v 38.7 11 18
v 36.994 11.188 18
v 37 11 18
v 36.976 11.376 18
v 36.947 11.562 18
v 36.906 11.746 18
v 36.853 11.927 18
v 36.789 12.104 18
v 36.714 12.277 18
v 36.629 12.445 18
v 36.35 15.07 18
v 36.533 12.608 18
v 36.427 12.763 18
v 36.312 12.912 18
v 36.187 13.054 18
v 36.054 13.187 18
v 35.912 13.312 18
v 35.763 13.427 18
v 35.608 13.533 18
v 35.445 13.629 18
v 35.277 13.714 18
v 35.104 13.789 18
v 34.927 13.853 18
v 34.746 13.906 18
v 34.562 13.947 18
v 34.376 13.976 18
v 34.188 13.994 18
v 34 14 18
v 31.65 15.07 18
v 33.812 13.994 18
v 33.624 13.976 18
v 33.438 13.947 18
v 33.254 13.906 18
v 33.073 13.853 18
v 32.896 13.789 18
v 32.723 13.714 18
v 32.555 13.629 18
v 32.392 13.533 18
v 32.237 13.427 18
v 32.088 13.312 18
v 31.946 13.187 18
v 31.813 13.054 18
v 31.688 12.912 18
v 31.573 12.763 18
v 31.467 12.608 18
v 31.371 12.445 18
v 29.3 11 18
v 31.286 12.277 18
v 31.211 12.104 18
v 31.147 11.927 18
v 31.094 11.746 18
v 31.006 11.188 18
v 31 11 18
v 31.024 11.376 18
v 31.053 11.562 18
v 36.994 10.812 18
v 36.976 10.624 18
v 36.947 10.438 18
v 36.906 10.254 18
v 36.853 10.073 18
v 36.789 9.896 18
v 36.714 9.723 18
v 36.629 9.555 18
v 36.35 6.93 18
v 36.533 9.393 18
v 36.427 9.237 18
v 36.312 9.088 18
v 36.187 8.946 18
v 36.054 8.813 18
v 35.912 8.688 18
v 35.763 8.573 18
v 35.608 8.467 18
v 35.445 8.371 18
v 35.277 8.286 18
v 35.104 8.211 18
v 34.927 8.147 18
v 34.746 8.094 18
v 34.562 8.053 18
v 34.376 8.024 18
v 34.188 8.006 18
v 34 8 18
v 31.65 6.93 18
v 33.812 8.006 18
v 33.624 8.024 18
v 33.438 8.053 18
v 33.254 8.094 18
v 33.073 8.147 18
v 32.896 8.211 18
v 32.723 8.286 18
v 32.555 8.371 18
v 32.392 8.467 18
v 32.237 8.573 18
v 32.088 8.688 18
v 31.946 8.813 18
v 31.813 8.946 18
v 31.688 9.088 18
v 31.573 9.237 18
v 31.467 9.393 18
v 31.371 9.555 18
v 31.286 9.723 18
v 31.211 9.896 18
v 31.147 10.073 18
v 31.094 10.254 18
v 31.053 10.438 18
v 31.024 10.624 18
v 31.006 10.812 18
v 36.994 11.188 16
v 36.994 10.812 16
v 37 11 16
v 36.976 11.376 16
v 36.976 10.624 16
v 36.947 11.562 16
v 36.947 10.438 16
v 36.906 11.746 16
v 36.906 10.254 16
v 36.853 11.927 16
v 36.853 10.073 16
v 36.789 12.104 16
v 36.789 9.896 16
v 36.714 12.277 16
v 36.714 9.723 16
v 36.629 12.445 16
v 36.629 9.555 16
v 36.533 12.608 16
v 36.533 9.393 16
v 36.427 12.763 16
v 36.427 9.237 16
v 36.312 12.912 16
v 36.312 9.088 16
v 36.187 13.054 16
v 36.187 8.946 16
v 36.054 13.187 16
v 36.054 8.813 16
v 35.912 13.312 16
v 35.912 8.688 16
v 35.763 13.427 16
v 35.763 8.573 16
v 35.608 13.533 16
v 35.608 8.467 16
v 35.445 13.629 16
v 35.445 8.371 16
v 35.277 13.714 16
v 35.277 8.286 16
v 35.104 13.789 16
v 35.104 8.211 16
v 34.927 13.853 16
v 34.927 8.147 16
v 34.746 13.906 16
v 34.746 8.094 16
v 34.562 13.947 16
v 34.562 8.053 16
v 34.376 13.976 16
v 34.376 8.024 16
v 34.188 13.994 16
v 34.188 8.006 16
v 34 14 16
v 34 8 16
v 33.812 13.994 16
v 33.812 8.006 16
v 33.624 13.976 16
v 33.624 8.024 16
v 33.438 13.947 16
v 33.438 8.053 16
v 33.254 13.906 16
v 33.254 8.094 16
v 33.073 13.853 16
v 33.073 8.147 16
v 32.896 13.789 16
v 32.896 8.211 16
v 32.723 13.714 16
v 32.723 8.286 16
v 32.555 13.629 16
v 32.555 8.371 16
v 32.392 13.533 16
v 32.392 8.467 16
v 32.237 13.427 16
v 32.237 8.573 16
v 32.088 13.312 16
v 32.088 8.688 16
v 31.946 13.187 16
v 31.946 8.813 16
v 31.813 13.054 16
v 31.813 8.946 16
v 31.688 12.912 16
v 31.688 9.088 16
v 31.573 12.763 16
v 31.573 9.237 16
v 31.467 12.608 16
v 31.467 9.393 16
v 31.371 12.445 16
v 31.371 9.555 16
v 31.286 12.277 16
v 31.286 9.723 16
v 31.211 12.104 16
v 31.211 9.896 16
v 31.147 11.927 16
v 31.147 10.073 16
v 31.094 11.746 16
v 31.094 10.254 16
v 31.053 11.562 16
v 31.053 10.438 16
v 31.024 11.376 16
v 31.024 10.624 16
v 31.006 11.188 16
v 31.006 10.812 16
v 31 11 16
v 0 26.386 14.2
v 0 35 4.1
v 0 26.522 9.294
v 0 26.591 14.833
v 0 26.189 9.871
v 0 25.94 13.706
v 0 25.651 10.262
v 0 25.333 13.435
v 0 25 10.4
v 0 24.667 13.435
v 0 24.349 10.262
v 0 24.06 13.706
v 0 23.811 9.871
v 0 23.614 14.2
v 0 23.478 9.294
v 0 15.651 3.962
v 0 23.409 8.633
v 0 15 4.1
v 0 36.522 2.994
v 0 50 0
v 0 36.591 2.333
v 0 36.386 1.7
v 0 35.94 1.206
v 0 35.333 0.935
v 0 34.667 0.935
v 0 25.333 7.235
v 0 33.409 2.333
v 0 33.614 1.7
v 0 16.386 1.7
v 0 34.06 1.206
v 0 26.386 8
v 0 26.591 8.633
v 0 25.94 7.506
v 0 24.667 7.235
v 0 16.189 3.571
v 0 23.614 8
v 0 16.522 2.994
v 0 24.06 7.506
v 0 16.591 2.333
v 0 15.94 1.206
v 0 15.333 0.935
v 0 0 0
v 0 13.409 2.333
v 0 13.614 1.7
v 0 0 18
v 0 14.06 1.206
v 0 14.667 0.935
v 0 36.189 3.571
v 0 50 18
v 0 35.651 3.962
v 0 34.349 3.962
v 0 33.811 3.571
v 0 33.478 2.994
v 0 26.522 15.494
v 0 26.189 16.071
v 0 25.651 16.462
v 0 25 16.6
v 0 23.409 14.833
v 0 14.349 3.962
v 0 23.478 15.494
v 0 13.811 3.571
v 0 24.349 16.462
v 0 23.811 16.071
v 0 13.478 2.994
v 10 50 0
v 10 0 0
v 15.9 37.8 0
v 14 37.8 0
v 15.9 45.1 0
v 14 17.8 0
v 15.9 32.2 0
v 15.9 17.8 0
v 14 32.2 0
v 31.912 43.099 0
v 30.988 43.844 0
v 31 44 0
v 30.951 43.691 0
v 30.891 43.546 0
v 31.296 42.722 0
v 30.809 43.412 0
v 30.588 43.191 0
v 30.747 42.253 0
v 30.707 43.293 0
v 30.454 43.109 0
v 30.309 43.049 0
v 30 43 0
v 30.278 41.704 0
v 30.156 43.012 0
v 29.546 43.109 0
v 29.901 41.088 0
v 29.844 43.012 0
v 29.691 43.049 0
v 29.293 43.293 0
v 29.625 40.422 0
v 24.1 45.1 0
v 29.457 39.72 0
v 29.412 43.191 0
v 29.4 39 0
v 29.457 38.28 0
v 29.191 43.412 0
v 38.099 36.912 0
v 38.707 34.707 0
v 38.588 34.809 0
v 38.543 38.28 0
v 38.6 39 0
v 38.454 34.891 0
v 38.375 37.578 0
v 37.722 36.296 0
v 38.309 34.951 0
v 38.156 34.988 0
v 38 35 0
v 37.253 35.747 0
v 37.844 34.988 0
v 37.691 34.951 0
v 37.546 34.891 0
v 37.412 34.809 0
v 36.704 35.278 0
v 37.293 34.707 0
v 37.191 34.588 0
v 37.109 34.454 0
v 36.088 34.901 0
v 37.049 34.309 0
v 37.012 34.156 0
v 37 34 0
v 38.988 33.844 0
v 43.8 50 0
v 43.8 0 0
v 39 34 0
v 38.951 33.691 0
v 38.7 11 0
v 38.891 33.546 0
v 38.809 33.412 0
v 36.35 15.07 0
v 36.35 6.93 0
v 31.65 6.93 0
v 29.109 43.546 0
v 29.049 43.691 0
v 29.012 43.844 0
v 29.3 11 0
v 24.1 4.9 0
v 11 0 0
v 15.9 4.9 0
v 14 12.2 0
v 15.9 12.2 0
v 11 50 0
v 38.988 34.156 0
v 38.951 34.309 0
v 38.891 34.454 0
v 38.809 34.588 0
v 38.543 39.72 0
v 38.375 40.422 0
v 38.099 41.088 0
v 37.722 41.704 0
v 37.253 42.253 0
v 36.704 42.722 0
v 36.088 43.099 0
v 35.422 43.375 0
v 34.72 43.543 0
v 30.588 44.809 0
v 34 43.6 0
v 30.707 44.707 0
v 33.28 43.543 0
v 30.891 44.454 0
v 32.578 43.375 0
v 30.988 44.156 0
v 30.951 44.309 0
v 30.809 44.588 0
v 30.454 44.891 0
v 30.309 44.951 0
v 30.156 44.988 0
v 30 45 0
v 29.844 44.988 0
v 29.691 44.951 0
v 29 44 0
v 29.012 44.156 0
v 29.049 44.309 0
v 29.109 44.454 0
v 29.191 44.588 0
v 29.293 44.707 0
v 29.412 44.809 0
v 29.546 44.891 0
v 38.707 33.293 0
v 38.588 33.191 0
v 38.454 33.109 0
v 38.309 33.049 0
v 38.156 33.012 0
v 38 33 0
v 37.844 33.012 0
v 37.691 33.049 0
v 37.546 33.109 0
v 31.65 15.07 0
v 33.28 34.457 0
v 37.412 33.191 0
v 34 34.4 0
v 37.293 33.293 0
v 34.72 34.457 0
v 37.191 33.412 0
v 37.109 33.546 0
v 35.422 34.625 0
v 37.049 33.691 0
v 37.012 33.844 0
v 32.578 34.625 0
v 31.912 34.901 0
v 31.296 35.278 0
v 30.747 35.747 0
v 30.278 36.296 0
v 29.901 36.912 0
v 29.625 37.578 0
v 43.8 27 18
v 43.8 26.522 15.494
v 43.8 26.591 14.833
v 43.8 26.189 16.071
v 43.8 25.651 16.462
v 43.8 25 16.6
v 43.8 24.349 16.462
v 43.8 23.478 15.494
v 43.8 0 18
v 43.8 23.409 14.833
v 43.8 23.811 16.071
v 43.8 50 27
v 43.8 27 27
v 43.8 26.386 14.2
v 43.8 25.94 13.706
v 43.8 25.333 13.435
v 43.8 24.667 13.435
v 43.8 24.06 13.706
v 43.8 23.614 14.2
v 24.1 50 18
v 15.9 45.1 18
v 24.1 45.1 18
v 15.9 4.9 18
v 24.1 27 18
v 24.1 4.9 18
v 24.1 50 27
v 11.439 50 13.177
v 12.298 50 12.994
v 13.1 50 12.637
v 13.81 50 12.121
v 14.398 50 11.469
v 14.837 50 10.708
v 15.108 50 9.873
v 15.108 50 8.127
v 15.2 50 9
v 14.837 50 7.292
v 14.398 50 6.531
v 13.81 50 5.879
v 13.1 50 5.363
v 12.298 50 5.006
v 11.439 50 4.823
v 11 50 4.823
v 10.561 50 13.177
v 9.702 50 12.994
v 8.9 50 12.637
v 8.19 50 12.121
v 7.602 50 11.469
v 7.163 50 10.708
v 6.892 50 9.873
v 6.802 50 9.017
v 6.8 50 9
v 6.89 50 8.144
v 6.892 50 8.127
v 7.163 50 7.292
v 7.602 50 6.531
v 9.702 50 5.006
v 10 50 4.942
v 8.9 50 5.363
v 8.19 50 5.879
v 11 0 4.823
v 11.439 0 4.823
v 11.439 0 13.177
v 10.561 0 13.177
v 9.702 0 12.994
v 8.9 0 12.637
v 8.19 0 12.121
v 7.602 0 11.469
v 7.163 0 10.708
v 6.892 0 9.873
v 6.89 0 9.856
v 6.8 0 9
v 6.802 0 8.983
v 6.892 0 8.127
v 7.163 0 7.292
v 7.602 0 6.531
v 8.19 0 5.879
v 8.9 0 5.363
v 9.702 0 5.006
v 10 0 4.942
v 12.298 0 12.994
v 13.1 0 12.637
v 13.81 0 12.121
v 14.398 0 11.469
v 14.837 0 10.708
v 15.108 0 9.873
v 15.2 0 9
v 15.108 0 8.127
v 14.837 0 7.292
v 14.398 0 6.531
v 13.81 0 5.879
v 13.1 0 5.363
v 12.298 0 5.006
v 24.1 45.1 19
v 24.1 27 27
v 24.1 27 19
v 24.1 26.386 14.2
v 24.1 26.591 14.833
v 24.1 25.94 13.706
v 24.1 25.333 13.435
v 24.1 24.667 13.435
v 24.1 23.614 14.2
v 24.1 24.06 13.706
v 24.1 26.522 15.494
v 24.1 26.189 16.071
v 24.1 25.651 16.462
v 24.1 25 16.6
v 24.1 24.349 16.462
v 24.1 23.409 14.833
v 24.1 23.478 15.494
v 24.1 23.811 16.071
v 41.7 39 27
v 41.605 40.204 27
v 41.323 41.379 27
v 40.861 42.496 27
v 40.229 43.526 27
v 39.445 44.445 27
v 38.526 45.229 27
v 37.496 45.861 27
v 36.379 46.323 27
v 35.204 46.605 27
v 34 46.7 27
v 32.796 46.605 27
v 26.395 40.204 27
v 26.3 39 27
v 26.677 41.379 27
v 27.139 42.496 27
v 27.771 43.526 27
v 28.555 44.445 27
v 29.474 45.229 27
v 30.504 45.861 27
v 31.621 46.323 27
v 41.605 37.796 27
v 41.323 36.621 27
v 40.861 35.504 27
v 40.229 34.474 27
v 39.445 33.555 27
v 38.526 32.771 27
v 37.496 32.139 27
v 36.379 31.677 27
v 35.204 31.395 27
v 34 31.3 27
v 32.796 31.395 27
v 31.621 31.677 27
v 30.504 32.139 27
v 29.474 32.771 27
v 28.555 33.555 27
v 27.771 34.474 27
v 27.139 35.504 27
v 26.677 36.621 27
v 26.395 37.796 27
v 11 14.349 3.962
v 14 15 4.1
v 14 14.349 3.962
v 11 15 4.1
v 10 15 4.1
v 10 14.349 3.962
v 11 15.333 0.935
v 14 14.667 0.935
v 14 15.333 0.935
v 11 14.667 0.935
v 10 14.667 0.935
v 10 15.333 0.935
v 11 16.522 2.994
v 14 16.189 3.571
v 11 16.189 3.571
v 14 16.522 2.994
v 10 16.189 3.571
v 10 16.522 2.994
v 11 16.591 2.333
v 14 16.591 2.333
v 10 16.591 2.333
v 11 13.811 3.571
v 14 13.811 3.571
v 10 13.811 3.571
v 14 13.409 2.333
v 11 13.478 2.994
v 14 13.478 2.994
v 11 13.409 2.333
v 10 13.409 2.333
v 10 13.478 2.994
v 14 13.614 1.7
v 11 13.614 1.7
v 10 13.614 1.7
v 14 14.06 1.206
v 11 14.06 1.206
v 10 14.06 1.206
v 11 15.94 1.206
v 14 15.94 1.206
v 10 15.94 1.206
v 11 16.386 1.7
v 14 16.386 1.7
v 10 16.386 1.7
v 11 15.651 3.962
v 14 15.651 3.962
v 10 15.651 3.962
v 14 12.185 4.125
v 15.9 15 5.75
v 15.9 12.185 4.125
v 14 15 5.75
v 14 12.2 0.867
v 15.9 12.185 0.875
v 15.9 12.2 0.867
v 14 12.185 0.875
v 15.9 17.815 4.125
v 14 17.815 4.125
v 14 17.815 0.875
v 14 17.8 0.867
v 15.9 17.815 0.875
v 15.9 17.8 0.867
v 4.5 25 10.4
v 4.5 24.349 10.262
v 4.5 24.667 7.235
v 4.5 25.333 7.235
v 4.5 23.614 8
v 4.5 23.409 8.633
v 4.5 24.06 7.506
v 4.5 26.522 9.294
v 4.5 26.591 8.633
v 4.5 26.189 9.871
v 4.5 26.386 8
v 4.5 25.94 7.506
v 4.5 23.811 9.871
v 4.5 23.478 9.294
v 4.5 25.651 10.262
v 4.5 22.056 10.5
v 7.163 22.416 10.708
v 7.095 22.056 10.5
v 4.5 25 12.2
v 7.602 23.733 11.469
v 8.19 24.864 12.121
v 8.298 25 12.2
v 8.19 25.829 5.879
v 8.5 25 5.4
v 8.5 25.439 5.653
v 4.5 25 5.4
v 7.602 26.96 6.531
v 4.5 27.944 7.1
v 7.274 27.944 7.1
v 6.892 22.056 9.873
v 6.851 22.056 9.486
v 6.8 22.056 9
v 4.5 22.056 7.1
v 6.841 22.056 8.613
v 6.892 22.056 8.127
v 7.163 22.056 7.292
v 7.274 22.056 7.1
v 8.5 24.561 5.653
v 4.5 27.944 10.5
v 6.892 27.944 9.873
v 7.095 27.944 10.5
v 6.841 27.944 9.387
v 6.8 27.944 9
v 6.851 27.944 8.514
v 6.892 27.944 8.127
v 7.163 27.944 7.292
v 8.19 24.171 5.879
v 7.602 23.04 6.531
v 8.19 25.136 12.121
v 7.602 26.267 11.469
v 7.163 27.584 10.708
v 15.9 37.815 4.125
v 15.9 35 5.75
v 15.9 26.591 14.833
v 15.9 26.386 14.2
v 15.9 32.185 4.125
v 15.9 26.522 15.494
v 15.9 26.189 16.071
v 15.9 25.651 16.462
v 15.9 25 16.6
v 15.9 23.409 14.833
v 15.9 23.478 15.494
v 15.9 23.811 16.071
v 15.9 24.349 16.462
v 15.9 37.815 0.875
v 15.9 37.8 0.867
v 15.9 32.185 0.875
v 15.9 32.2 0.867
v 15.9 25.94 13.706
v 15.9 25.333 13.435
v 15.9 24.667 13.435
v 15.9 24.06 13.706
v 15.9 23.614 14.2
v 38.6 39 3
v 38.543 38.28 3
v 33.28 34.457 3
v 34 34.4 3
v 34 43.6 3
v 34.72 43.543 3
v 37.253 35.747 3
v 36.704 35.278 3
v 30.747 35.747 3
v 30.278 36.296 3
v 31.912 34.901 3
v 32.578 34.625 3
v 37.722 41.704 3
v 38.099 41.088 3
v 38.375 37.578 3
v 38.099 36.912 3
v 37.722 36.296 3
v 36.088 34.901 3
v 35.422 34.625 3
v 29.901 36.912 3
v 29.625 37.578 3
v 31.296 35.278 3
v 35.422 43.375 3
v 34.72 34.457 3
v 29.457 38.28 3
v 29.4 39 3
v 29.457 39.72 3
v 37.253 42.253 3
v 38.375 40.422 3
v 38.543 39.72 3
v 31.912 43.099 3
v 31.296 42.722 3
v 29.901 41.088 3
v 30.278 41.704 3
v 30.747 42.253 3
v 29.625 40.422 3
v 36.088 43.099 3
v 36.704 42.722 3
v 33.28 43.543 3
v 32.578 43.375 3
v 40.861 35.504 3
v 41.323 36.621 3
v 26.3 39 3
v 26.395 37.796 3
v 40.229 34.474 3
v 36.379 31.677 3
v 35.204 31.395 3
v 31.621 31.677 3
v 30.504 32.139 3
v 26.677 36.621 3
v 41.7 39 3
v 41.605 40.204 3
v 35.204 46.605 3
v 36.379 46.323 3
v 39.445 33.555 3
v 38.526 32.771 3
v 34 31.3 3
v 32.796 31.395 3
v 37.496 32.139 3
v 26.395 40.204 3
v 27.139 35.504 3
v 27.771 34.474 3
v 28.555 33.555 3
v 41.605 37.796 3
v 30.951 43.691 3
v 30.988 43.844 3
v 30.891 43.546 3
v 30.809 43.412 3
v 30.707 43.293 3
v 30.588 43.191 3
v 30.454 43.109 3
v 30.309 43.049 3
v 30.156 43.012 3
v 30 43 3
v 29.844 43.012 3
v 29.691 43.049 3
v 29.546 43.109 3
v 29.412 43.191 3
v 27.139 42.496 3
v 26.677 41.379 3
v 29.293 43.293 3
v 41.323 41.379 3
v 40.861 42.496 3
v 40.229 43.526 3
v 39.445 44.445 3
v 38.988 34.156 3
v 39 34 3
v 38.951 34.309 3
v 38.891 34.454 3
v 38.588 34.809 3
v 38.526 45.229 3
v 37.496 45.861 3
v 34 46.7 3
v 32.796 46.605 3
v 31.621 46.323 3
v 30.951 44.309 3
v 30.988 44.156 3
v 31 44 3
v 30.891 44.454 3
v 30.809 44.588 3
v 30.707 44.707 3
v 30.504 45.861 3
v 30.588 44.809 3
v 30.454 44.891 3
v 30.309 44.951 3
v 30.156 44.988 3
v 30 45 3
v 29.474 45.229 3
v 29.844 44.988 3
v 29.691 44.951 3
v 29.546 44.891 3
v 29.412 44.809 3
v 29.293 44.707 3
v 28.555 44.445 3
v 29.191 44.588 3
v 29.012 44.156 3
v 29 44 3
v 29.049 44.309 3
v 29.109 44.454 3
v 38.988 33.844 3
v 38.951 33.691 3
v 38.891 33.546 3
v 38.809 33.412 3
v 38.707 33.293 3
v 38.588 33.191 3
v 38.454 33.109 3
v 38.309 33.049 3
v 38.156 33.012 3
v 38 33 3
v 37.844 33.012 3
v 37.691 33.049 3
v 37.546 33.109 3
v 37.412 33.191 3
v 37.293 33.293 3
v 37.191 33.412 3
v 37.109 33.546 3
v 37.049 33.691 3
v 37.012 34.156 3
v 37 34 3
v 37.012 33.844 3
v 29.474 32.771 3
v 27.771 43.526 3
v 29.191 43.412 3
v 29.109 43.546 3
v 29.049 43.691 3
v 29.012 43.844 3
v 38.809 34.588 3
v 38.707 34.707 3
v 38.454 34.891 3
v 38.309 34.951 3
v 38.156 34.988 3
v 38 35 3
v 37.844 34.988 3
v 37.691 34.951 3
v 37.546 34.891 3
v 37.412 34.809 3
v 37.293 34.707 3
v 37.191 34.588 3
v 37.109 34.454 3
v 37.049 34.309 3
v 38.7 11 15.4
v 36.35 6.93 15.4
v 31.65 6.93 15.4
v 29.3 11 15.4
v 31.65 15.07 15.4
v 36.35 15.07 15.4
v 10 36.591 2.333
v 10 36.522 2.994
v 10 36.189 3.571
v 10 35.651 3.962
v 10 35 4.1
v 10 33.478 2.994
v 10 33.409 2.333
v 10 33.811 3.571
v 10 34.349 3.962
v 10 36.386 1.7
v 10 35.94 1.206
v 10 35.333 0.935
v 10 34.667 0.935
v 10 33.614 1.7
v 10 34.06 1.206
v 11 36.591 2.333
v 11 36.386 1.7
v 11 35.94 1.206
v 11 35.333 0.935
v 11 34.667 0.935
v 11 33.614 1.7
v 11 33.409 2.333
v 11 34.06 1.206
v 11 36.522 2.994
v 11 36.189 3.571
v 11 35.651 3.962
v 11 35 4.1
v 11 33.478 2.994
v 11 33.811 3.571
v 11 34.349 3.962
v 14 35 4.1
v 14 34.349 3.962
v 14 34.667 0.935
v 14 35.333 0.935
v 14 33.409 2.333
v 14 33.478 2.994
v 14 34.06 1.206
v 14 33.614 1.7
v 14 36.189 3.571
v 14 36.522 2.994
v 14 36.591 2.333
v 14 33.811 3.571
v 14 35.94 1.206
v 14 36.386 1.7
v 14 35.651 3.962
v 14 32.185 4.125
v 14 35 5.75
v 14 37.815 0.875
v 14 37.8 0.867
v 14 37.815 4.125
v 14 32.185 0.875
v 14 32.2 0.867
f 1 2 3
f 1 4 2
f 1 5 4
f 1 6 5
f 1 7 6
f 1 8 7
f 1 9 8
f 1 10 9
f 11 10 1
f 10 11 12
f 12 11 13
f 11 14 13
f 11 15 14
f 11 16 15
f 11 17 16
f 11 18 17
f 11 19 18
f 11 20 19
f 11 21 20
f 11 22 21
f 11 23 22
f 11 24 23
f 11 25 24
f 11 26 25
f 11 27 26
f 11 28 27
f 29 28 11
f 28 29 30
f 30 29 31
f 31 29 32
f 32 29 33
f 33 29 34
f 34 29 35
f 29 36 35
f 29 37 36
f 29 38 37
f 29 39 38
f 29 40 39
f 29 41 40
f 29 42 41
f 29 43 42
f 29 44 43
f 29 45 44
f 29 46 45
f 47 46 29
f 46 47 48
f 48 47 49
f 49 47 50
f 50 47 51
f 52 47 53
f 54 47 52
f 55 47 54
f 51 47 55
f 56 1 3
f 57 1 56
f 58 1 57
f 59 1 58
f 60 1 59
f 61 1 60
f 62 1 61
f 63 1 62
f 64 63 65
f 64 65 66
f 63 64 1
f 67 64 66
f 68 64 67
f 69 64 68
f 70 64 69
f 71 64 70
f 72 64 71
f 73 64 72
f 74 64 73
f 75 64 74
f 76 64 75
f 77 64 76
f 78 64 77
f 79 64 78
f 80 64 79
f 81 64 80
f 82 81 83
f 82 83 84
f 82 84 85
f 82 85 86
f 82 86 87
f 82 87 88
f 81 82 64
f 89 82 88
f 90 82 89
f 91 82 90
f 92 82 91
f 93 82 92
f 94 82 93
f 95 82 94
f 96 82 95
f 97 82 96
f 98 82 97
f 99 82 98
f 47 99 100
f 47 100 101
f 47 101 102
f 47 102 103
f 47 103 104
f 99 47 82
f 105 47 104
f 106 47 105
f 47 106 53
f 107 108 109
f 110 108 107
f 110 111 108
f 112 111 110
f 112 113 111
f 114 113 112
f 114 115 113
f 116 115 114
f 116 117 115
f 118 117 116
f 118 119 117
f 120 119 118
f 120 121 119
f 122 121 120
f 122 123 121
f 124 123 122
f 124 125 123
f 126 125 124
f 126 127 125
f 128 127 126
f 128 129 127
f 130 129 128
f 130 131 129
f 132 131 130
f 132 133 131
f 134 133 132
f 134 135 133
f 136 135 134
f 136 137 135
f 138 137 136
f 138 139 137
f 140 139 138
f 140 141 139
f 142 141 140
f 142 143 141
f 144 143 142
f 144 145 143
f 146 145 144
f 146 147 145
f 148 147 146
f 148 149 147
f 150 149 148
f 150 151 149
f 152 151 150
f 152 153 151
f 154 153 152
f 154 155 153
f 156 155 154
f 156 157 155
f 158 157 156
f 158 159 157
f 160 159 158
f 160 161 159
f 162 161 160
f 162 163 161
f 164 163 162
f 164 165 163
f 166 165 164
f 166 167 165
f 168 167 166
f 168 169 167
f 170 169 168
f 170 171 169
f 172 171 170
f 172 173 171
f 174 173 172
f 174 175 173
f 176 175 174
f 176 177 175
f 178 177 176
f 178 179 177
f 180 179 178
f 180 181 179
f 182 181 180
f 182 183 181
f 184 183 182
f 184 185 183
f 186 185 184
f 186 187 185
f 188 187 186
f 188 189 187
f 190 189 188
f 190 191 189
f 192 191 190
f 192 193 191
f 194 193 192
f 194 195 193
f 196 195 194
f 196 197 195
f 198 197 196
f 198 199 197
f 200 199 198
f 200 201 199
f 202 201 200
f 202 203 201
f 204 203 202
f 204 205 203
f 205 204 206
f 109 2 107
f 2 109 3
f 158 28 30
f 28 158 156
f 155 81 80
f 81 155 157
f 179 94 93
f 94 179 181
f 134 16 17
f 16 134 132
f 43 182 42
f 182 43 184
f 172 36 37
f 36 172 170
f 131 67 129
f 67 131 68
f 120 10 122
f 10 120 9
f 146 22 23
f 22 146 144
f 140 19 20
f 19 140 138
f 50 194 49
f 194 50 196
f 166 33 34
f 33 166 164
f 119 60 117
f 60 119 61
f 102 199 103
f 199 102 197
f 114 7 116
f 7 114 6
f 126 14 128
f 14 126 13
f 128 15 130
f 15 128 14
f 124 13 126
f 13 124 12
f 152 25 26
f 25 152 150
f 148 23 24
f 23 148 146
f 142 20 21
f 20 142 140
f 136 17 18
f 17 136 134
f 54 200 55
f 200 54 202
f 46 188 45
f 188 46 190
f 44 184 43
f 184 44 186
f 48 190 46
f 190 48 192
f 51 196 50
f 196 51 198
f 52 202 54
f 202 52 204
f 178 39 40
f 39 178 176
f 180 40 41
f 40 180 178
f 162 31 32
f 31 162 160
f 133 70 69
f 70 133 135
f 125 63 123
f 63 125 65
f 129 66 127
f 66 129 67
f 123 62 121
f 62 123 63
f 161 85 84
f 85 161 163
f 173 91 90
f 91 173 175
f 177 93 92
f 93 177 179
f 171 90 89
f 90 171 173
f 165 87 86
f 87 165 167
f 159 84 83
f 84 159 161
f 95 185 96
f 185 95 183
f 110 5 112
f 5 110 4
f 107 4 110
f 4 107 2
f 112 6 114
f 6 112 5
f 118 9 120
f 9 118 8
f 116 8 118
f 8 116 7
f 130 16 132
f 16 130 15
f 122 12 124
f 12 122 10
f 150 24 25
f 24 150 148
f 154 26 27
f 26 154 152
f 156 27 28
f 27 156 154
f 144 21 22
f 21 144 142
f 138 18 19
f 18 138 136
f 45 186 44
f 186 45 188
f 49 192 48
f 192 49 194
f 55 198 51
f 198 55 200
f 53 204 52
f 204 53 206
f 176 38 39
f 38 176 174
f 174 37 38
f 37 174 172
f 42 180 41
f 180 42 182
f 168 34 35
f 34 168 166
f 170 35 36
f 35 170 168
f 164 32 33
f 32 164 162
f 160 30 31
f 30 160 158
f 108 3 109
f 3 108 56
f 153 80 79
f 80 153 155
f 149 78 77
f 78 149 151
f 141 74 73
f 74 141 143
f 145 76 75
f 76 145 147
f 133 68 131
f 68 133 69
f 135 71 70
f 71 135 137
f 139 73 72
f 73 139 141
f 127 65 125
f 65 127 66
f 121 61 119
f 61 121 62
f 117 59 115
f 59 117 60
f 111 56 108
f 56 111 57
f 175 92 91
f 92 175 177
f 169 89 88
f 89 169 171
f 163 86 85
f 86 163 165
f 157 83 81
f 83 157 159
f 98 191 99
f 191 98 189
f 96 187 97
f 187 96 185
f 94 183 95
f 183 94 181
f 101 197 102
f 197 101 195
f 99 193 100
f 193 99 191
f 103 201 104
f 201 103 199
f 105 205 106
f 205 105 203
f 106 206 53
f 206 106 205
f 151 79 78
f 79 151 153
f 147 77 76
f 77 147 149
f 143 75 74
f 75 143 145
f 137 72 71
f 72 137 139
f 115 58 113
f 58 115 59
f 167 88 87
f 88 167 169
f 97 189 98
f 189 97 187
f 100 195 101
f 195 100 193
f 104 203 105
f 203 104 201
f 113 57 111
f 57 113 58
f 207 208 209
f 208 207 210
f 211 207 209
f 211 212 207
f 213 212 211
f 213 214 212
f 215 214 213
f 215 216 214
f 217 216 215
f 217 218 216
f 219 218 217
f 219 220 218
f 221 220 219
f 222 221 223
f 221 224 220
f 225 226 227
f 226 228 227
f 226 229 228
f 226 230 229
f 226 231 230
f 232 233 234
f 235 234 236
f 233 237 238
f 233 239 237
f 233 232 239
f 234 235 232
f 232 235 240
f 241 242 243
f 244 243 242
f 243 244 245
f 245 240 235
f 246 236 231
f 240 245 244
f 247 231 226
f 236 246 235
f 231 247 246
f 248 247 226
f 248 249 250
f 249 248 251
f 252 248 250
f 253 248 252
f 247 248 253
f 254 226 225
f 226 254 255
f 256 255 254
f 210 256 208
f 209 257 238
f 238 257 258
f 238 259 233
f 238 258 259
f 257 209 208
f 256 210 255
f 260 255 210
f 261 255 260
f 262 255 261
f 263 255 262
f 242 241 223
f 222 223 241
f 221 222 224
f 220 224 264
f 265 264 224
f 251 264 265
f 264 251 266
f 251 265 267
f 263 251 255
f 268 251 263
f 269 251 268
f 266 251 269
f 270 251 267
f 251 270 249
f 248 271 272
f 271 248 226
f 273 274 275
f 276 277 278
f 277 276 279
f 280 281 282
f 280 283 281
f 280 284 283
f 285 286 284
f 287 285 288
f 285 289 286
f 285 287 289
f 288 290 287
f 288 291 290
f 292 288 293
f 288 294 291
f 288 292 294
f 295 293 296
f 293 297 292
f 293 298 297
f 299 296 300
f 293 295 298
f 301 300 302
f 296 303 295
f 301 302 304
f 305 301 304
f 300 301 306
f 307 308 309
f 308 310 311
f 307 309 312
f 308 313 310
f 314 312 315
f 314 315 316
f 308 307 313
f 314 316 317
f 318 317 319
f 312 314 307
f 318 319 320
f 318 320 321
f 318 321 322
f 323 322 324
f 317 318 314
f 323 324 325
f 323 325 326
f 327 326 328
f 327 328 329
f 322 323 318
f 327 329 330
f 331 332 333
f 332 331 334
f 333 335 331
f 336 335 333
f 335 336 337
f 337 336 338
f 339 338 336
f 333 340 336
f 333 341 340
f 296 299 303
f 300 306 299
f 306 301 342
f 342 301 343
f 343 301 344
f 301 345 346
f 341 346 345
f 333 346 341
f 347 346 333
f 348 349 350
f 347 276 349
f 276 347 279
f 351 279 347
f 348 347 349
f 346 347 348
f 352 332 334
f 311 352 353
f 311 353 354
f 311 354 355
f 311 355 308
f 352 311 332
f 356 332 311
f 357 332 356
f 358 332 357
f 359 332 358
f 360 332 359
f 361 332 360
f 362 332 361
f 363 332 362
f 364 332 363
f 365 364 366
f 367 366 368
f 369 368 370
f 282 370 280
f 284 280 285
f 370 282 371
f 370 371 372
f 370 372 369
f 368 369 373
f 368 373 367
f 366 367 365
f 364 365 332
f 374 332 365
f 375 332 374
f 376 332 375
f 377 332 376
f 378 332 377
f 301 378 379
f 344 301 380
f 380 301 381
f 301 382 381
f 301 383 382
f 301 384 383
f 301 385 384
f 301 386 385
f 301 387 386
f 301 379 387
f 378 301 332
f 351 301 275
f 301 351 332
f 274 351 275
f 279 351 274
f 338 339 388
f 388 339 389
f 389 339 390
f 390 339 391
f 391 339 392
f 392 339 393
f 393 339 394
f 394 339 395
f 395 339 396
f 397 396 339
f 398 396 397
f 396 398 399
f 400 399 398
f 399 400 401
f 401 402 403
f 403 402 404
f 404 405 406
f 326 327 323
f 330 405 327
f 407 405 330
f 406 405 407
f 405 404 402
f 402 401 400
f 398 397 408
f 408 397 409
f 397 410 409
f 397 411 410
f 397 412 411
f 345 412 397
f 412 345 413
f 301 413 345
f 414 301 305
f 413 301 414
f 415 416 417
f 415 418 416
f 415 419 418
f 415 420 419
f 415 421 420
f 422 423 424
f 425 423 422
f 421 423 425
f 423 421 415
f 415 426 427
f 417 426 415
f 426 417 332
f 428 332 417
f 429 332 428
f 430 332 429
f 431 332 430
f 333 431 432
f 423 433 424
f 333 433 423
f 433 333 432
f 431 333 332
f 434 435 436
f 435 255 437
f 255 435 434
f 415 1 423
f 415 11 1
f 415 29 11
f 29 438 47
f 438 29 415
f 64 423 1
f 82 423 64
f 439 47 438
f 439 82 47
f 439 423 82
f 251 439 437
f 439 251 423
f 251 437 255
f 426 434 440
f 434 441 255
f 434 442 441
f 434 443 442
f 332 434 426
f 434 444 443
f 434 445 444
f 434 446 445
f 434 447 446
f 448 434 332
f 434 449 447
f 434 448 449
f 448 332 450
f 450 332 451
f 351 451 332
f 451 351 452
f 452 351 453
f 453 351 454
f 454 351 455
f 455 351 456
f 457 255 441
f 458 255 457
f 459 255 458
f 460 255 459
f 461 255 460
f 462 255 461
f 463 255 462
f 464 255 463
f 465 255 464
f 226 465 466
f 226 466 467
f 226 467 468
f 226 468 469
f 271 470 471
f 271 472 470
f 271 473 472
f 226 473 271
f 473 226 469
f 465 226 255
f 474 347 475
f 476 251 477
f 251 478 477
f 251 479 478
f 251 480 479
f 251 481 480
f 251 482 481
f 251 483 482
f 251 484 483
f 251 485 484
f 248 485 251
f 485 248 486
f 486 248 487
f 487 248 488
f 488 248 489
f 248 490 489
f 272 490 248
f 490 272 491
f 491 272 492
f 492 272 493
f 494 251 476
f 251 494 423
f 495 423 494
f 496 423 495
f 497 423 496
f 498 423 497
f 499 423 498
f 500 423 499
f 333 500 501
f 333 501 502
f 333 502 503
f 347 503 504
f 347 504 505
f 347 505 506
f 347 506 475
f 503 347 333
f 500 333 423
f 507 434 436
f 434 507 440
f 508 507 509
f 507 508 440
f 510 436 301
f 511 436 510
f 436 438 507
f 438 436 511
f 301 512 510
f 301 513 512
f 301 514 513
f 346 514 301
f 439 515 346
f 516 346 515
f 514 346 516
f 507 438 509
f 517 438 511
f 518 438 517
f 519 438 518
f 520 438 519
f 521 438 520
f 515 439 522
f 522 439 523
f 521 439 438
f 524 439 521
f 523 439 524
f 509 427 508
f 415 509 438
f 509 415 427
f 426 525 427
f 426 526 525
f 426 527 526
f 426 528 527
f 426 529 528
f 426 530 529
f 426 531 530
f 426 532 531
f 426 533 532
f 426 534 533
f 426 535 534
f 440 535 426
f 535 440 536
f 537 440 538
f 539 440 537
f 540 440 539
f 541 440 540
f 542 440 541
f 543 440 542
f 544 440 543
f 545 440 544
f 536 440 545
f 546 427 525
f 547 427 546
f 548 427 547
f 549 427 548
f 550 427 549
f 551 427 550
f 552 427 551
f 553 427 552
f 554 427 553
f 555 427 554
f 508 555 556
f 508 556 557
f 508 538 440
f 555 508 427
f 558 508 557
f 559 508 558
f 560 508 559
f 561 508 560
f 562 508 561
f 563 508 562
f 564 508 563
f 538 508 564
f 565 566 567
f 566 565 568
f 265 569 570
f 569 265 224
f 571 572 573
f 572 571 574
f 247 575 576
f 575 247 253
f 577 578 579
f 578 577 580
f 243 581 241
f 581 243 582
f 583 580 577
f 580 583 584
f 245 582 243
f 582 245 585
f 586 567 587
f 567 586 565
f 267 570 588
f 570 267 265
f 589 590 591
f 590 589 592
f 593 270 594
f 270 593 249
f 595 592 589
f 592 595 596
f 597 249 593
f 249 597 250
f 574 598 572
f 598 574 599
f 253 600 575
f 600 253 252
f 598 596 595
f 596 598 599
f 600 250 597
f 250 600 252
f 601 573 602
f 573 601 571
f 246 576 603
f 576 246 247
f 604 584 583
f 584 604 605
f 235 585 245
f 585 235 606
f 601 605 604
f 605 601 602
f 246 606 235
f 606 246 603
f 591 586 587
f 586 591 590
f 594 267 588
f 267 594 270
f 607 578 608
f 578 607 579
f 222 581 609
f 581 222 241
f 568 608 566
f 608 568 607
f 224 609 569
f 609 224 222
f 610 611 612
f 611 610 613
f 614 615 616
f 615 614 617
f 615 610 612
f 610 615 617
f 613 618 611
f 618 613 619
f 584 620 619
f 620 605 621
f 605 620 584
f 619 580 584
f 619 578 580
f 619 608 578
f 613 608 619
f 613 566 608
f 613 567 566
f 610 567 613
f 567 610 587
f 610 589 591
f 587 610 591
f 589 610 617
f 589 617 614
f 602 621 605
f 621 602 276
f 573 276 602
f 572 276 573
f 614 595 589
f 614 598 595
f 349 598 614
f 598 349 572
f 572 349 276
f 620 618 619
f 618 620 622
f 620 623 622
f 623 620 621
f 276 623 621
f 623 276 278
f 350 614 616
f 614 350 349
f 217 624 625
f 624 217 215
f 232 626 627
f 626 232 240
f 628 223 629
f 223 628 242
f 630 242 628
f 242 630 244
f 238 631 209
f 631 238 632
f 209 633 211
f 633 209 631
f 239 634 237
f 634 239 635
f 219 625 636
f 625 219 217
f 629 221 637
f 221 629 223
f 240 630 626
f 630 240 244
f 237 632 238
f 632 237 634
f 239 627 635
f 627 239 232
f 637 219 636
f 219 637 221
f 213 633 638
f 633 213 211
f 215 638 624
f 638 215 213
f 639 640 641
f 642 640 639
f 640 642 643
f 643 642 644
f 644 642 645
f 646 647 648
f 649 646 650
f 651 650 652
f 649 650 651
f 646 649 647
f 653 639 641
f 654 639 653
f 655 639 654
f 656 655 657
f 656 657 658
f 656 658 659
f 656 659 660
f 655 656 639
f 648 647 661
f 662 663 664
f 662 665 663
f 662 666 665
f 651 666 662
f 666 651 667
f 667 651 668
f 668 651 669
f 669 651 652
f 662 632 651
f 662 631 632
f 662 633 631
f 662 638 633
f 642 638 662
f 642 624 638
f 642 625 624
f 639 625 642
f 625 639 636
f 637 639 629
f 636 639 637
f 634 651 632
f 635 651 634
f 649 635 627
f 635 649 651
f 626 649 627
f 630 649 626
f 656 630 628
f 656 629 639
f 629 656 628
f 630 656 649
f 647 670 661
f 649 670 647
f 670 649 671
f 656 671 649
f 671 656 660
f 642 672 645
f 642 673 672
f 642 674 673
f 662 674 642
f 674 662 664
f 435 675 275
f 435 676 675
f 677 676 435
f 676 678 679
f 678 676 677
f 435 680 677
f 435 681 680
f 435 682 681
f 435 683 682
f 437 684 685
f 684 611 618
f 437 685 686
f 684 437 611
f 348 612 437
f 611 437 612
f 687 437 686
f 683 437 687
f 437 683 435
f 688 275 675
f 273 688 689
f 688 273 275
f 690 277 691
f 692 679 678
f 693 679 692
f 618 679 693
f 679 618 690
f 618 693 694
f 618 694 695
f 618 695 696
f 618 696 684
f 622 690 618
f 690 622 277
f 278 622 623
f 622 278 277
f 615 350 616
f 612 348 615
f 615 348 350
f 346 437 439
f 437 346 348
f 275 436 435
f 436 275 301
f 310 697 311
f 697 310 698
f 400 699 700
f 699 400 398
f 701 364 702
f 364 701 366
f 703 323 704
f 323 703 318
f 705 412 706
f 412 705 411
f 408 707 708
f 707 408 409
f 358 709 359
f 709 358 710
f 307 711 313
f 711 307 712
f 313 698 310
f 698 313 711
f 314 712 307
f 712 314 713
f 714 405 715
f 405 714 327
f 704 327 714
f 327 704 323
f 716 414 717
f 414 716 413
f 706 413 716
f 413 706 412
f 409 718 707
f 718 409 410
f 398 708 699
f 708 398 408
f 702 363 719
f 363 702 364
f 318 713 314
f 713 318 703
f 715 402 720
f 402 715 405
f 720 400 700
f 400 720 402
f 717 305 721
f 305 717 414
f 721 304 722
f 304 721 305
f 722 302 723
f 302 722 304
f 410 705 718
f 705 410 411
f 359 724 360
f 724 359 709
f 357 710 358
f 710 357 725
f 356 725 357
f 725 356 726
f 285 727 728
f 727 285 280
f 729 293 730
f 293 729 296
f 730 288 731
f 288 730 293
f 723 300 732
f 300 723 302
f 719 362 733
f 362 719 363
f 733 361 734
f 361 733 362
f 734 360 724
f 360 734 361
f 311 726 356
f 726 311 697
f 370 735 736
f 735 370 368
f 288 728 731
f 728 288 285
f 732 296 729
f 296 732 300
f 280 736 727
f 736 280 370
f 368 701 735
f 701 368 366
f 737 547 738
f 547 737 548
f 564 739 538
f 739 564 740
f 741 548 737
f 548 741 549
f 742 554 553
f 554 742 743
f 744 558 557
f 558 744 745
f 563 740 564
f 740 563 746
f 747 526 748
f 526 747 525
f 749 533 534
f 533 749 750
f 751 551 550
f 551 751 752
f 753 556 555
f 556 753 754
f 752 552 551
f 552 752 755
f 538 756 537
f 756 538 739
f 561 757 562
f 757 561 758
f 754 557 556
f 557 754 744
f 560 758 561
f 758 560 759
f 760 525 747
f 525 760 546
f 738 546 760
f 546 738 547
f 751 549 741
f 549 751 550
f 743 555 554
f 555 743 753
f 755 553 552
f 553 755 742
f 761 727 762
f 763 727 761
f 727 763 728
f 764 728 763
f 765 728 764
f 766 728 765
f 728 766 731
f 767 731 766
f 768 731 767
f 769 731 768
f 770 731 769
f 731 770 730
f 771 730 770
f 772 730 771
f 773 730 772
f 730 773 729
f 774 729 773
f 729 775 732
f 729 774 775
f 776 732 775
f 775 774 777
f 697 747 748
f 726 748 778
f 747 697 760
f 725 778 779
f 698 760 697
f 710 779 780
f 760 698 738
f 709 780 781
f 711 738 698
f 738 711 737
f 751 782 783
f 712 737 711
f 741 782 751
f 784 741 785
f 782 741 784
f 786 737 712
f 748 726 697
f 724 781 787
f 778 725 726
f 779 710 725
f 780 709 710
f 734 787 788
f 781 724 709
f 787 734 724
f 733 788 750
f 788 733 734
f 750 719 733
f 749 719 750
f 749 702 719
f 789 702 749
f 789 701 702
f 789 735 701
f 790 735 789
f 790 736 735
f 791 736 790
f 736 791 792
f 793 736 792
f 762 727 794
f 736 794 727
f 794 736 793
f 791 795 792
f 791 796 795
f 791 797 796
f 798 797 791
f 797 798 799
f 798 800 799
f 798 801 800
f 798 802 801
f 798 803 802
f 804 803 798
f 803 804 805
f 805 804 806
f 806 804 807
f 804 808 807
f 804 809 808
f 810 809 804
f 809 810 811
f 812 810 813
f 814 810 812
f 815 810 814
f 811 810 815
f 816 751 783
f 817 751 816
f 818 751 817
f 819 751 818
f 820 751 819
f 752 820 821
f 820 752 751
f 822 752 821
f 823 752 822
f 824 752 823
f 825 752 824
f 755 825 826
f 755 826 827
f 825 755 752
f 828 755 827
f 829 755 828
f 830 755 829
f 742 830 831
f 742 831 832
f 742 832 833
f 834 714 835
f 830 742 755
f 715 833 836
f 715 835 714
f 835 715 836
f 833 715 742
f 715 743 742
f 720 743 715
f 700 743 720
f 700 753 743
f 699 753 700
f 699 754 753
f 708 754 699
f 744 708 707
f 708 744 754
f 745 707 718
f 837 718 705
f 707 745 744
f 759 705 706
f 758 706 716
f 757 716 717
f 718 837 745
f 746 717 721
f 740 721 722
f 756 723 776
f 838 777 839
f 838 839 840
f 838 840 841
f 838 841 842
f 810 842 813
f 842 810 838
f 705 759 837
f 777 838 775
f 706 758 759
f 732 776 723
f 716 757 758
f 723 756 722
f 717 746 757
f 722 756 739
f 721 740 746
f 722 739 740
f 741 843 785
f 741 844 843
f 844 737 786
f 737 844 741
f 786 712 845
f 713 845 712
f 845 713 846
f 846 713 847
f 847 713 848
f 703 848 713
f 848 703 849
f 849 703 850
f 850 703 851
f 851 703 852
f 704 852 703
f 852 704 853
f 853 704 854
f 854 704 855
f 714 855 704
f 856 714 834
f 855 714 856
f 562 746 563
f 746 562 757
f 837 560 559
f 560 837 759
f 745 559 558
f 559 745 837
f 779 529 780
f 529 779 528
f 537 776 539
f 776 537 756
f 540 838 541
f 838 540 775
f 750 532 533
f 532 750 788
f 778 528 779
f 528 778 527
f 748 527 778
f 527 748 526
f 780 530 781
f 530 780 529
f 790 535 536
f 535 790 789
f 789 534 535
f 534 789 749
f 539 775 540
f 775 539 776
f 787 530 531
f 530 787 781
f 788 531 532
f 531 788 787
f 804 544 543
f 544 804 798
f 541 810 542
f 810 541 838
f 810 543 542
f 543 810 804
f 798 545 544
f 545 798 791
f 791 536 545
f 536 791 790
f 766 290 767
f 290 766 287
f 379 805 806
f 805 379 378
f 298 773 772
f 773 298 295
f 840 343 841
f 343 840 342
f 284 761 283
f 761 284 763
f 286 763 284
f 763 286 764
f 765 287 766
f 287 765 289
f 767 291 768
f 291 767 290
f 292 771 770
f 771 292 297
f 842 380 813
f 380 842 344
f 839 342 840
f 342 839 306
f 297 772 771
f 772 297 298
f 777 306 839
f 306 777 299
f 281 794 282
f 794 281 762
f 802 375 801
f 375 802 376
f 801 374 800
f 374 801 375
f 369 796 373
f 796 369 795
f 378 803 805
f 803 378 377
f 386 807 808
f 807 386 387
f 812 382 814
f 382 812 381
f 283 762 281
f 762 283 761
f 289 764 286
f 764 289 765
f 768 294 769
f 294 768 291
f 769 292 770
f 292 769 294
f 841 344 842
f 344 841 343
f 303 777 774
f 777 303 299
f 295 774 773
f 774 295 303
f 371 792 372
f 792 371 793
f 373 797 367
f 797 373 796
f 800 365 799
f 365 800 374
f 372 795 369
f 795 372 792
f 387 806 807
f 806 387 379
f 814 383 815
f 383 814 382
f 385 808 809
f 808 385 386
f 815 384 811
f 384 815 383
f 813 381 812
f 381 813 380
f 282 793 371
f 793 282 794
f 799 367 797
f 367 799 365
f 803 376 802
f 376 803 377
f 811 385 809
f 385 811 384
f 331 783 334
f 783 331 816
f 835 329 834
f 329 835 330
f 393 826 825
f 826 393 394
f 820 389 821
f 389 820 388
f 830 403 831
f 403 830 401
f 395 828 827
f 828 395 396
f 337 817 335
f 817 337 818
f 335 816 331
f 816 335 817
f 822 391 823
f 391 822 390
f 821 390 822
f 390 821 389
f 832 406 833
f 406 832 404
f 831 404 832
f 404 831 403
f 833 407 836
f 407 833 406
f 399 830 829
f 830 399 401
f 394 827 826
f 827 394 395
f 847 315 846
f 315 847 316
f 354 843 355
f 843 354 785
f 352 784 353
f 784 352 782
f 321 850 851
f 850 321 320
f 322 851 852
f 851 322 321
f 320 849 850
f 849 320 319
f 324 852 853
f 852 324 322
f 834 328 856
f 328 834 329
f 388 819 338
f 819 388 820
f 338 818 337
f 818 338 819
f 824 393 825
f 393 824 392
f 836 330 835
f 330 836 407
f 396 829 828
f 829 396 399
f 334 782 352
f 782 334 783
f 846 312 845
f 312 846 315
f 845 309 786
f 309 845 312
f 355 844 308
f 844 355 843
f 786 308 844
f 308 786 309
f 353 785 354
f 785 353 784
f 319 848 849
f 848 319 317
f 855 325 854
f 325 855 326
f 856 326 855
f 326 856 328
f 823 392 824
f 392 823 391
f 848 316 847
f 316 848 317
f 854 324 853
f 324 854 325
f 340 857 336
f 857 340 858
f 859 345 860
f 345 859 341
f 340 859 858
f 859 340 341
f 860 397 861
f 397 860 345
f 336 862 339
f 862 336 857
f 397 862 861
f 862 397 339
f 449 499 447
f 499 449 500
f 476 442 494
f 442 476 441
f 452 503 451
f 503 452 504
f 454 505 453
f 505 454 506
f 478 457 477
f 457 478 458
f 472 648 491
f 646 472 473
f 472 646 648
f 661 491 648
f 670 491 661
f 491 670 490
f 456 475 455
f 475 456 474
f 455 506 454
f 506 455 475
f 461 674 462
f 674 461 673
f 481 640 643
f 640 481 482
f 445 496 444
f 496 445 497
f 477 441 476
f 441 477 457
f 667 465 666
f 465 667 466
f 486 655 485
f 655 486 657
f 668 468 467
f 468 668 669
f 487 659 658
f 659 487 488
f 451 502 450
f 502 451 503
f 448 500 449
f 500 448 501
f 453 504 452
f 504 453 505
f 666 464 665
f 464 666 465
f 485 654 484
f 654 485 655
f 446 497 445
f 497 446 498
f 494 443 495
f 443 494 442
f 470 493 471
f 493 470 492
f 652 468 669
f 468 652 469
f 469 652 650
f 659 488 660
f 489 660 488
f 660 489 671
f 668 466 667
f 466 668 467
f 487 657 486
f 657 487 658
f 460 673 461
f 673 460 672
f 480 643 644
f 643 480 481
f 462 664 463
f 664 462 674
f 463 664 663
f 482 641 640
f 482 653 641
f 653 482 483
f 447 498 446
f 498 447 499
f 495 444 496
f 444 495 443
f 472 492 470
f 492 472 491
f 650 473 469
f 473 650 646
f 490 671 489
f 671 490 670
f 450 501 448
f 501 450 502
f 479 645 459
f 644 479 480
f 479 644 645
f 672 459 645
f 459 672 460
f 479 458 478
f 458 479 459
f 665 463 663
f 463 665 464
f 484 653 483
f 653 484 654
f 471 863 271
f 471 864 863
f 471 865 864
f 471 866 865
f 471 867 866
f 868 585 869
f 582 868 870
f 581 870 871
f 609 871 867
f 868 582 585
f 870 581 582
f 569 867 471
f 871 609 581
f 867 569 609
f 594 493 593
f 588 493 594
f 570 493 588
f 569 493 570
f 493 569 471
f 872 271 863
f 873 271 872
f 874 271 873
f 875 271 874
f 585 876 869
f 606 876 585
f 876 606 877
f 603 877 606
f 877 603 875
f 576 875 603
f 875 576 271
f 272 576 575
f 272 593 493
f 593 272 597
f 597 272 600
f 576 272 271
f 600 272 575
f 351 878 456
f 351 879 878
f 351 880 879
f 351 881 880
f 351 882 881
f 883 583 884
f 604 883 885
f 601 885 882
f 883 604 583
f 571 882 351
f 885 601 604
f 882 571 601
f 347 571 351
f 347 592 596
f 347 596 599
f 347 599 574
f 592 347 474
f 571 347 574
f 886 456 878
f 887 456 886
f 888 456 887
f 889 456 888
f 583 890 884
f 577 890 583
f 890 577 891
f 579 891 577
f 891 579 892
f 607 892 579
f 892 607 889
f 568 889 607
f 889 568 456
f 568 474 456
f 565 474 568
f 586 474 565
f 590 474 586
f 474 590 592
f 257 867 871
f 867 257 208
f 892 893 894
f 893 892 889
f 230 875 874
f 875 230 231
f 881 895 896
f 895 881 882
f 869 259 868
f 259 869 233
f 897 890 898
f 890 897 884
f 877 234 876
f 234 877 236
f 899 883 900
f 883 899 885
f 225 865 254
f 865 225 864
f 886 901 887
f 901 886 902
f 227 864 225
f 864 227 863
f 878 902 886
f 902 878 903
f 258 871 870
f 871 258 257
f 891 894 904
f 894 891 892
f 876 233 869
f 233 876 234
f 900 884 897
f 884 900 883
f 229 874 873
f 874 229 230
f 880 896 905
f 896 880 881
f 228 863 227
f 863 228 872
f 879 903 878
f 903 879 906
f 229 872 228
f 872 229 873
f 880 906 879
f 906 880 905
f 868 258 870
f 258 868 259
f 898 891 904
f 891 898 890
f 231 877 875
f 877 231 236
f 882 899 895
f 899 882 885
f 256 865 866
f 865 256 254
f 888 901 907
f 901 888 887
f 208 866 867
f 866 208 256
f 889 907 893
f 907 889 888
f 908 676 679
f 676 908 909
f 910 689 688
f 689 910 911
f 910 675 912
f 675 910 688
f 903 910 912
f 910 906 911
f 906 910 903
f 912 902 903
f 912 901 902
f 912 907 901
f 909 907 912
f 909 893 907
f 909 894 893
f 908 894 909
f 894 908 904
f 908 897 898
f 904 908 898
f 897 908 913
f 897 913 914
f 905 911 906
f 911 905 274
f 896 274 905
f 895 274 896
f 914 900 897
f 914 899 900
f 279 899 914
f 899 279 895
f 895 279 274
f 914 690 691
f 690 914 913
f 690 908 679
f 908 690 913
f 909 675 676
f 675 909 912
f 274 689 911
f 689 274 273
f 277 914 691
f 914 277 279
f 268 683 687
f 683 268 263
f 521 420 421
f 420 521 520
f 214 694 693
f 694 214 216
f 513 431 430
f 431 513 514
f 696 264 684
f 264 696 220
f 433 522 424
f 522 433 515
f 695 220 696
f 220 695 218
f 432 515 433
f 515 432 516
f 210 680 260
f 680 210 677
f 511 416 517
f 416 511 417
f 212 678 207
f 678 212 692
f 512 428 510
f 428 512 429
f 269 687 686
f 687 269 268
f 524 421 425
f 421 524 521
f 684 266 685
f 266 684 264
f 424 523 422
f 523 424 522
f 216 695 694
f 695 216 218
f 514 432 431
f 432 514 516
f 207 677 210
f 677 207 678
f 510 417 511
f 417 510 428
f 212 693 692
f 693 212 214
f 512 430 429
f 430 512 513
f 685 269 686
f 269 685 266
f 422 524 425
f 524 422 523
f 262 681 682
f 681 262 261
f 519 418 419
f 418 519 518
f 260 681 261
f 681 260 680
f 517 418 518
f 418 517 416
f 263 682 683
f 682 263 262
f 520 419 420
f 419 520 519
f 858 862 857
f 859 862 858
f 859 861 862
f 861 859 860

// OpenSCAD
/**
 * Критические размеры
 */
// Допуск на радиус подшипника (расстояние между стенками подшипника и детали)
delta1=0.2;
// Наружный диаметр линейного подшипника LM8UU
d1=15;
// Допуск на радиус направляющей (расстояние между стенками направляющей и детали)
delta2=0.2;
// Наружный диаметр направляющей
d2=8;
// расстояние между осью подшипника и осью гайки должно быть 28 мм

module carriage_part01() {
	module block() {
		M3 = 3.2/2;
		difference() {
		union() {
			translate([-2,0,0]) cube([43.8,50,18]);
			translate([-2,10,0])	cube([2,30,18]);
			// шапка над подшипником
			translate ([22.1,0,-9]) cube([19.7,23,9]);
		}

//	translate([-10,-10,-40])cube([100,100,50]);
//	translate([-10,-10,13])cube([100,100,50]);
//	translate([-78,-10,-20])cube([100,100,50]);

// вырез под оргстекло
//	translate([13.9,5,-1])cube([8.2,40,23]); - не входит
	translate([13.9,4.9,-1])cube([8.2,40.2,23]);

// линейный подшипник 24 * 15 * 8
	translate([32,11,-1]) cylinder(20,r=9.2/2,$fn=40);

//translate([32,11,-4]) cylinder(26,r=15.4/2,$fn=40); // для инверсии входа подшипника
//	translate([32,11,-11]) cylinder(26,r=15.4/2,$fn=40); 
	translate([32,11,-11]) cylinder(26,r=d1/2+delta1,$fn=40); // уменьшаем отверстие подшипника

	// Отверстия для извлечения подшипников
	translate([28,6,5]) cylinder(20,r=1,$fn=40);
	translate([36,16,5]) cylinder(20,r=1,$fn=40);

	// гайка  M5
//#	translate([32,39,-1])cylinder(6.4,r=4.7,$fn=40);
//#	translate([32,39,10])cylinder(9,r=4.7,$fn=40);
//#translate([35,32.4,-1])cube([6,13.2,20]);
	translate ([32,39,-1]) cylinder(20,r=9.4/2,$fn=6);


	// направляющая - слабо держит
//	translate([9,-1,9])rotate([-90,0,0])cylinder(52,r=8.4/2,$fn=30);
	// направляющая - меньше диаметр отверстия
	translate([9,-1,9])rotate([-90,0,0])cylinder(52,r=d2/2+delta2,$fn=30);
	// вырезы у направляющей
	translate([8,-1,8])cube([1,52,11]);

	// отверстие 1
	translate([-5,15,15.5])rotate([0,90,0])cylinder(20,r=M3,$fn=15);
	translate([12,15,15.5])rotate([0,90,0])cylinder(5,r=6.5/2,$fn=6);
	translate([12,12.2,17])cube([3,5.6,2]);

	// отверстие 2
	translate([0,35,0]) {
		translate([-5,0,15.5])rotate([0,90,0])cylinder(20,r=M3,$fn=15);
        translate([12,0,15.5])rotate([0,90,0])cylinder(5,r=6.5/2,$fn=6);
        translate([12,-15+12.2,17])cube([3,5.6,2]);
	}
	// отверстие 3 в прижиме
	translate([-9.5,10,-6.6]) {
		translate([-5,15,15.8])rotate([0,90,0])cylinder(20,r=M3,$fn=15);
	translate([12,15,15.8])rotate([0,90,0])cylinder(4,r=6.8/2,$fn=6);
	}
	// сквозное отверстие в детали
		translate([-14.5,25,3])rotate([0,90,0])cylinder(60,r=M3,$fn=15);
}
}

	// шапка над гайкой, отверстие в ней
	difference() {
		translate ([25,0,16]) cube([18,20,2]);
		translate ([34,11,10]) cylinder(10,r=6/2,$fn=100);
	}
	translate ([25,0,15.4]) cube([18,20,0.6]);

// мост над трубкой - не нужен при верной ориентации прохода втулки
//	translate ([24,30.5,13.5]) cube([16,16,0.5]);
    translate([2,50,18])rotate([180,0,0])block();
}

carriage_part01();
